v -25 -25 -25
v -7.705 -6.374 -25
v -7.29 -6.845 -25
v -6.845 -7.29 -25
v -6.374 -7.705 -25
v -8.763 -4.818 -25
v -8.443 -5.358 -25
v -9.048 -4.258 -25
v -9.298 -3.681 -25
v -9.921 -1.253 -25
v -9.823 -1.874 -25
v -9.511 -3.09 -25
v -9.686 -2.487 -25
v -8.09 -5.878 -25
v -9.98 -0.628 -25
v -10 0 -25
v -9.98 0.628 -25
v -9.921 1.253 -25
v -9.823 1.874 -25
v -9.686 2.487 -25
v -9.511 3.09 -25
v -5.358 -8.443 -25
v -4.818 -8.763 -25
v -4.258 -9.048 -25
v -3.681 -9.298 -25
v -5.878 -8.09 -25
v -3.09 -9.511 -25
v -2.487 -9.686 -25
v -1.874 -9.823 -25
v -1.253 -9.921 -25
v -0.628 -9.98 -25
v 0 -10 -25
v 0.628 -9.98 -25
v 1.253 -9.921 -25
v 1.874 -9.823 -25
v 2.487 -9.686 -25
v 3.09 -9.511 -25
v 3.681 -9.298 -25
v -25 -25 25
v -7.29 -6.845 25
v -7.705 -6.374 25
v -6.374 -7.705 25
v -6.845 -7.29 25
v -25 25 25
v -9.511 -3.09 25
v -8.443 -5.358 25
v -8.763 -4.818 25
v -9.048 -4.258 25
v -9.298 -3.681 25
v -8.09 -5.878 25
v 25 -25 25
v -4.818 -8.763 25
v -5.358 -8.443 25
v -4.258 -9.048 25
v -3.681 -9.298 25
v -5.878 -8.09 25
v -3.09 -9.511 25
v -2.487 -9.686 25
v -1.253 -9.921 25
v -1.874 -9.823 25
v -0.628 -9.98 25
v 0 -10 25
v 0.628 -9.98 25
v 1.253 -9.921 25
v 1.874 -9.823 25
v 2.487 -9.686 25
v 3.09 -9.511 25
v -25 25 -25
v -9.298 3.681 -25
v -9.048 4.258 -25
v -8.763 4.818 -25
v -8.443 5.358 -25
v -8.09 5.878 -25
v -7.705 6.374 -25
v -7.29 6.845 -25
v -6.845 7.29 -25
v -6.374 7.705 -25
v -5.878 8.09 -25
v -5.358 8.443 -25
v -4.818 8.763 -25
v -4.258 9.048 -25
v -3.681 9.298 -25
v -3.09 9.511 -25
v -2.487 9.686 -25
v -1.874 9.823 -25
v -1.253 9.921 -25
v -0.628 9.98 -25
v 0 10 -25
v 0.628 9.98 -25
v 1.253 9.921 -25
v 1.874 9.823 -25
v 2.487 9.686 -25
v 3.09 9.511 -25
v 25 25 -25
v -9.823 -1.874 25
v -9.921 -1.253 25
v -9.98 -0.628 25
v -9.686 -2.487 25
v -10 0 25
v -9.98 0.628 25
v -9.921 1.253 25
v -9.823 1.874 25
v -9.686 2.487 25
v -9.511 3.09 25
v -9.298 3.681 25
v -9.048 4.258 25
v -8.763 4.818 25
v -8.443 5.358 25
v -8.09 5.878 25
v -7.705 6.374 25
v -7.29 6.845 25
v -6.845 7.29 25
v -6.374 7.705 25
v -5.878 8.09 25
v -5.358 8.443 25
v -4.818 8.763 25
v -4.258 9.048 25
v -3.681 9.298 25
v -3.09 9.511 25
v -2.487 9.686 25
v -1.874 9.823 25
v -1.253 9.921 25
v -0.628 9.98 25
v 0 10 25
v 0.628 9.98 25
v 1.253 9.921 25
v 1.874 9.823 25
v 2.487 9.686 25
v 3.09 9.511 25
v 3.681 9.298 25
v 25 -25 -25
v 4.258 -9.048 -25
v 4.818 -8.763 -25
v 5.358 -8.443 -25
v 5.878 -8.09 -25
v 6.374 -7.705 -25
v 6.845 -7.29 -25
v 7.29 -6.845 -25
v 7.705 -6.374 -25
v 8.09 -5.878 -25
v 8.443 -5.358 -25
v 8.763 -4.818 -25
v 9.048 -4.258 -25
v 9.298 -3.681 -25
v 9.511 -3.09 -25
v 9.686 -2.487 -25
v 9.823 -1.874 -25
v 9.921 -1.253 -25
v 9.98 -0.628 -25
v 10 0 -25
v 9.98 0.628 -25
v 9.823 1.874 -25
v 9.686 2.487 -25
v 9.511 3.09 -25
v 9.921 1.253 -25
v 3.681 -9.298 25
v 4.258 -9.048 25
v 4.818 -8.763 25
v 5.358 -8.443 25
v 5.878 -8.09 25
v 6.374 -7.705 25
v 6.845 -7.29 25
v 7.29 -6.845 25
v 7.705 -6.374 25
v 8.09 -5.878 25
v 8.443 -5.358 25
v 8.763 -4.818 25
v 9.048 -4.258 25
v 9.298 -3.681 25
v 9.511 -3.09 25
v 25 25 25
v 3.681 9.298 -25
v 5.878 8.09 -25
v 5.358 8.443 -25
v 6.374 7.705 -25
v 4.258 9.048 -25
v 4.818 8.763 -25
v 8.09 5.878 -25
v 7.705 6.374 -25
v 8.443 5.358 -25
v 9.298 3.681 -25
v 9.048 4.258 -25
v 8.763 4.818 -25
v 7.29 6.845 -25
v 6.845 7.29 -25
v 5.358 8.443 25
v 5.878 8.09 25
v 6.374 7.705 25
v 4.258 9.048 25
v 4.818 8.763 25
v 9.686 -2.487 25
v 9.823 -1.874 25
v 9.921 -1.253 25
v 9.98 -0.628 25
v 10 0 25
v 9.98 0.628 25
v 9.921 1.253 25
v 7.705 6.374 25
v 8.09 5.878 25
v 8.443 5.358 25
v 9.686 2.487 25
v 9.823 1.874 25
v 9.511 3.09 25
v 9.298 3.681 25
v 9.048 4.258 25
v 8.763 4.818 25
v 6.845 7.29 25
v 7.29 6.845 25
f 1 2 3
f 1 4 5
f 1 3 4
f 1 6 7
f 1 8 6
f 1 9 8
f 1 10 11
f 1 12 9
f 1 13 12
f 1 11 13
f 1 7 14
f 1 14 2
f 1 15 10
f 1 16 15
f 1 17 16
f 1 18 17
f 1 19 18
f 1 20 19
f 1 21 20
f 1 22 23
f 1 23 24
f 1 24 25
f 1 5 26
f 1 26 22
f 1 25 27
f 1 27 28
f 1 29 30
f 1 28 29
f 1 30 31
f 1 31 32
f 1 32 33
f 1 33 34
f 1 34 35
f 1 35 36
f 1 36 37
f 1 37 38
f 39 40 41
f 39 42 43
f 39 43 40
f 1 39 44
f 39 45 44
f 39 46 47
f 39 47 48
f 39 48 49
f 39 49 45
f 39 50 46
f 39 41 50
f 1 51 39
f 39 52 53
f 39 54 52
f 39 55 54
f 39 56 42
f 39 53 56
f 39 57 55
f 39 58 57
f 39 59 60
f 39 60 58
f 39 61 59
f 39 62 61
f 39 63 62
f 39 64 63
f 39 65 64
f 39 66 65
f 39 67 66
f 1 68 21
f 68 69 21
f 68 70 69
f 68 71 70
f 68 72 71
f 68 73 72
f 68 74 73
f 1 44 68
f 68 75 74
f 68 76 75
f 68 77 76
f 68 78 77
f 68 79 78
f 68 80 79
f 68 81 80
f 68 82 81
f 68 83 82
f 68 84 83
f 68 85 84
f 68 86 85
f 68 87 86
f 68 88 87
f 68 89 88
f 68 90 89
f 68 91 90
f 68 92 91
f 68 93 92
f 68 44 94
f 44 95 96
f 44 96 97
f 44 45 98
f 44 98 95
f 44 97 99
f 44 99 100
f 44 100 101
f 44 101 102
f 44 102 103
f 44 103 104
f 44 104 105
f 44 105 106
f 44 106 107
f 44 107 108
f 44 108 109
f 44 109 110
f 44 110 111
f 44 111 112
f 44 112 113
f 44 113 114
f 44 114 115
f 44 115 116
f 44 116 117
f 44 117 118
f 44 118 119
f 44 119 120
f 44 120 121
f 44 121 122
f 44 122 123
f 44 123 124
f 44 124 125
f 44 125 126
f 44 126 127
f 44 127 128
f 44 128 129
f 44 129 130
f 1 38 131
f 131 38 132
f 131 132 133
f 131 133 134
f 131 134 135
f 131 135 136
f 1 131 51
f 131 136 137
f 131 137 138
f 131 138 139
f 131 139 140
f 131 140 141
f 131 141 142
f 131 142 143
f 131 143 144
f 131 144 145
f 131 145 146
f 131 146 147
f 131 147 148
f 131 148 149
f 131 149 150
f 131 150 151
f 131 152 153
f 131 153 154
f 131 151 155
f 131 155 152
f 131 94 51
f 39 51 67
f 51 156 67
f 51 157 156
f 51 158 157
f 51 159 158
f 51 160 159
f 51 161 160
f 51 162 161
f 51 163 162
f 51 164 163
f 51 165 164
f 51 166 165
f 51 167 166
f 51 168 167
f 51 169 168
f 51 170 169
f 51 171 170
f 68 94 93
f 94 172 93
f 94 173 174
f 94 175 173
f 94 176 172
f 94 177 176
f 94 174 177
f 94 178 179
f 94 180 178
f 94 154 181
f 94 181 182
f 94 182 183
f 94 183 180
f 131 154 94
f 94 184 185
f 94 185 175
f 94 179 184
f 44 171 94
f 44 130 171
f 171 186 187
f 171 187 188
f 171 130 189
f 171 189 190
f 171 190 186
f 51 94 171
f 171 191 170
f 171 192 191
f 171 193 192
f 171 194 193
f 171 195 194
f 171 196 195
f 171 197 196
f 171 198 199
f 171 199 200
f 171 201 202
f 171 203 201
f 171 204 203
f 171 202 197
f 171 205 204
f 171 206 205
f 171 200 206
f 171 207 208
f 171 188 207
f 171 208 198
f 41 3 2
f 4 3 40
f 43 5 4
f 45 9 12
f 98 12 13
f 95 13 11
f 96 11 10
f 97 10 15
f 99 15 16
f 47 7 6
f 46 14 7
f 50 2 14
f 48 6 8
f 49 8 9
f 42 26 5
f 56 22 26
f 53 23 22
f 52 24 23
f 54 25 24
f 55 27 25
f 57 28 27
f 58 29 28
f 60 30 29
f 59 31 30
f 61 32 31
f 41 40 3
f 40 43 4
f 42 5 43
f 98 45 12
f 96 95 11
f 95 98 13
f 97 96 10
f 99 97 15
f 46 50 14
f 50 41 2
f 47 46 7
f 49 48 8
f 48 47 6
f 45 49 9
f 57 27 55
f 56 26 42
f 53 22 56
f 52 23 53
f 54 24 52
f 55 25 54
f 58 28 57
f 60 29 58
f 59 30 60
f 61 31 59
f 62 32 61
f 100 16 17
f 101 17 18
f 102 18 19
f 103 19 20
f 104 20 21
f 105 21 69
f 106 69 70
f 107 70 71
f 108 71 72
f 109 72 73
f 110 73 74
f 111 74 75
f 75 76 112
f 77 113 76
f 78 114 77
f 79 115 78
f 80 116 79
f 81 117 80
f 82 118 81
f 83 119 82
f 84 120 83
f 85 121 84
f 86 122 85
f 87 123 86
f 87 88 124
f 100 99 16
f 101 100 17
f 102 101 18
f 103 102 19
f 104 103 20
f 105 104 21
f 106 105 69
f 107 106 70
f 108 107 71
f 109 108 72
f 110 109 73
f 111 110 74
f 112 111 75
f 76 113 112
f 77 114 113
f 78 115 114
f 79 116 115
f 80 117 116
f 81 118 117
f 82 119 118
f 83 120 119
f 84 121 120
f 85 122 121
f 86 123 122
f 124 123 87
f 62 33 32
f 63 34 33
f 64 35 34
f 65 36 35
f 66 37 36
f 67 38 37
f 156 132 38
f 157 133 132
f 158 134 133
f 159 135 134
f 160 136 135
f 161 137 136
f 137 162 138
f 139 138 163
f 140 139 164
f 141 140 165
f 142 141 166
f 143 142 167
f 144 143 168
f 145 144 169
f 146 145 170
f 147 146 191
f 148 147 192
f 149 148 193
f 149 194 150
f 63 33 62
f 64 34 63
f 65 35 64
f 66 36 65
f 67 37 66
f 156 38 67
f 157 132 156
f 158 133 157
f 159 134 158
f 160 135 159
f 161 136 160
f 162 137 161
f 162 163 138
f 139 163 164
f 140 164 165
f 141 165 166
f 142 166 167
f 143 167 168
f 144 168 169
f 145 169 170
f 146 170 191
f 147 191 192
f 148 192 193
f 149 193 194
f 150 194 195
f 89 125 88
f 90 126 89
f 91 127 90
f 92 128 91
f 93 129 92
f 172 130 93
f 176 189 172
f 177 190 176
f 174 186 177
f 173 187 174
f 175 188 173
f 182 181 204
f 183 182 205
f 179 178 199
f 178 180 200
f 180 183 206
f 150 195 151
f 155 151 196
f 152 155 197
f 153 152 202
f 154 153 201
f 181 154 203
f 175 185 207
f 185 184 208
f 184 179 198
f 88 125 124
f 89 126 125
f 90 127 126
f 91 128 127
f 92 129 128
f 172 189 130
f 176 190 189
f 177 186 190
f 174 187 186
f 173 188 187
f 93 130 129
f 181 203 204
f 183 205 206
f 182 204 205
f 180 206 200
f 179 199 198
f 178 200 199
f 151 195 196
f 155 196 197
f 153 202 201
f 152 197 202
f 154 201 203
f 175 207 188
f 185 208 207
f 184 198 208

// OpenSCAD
difference() {
    cube([50, 50, 50], center=true);
    cylinder(h=60, d=20, center=true, $fn=100);
}
